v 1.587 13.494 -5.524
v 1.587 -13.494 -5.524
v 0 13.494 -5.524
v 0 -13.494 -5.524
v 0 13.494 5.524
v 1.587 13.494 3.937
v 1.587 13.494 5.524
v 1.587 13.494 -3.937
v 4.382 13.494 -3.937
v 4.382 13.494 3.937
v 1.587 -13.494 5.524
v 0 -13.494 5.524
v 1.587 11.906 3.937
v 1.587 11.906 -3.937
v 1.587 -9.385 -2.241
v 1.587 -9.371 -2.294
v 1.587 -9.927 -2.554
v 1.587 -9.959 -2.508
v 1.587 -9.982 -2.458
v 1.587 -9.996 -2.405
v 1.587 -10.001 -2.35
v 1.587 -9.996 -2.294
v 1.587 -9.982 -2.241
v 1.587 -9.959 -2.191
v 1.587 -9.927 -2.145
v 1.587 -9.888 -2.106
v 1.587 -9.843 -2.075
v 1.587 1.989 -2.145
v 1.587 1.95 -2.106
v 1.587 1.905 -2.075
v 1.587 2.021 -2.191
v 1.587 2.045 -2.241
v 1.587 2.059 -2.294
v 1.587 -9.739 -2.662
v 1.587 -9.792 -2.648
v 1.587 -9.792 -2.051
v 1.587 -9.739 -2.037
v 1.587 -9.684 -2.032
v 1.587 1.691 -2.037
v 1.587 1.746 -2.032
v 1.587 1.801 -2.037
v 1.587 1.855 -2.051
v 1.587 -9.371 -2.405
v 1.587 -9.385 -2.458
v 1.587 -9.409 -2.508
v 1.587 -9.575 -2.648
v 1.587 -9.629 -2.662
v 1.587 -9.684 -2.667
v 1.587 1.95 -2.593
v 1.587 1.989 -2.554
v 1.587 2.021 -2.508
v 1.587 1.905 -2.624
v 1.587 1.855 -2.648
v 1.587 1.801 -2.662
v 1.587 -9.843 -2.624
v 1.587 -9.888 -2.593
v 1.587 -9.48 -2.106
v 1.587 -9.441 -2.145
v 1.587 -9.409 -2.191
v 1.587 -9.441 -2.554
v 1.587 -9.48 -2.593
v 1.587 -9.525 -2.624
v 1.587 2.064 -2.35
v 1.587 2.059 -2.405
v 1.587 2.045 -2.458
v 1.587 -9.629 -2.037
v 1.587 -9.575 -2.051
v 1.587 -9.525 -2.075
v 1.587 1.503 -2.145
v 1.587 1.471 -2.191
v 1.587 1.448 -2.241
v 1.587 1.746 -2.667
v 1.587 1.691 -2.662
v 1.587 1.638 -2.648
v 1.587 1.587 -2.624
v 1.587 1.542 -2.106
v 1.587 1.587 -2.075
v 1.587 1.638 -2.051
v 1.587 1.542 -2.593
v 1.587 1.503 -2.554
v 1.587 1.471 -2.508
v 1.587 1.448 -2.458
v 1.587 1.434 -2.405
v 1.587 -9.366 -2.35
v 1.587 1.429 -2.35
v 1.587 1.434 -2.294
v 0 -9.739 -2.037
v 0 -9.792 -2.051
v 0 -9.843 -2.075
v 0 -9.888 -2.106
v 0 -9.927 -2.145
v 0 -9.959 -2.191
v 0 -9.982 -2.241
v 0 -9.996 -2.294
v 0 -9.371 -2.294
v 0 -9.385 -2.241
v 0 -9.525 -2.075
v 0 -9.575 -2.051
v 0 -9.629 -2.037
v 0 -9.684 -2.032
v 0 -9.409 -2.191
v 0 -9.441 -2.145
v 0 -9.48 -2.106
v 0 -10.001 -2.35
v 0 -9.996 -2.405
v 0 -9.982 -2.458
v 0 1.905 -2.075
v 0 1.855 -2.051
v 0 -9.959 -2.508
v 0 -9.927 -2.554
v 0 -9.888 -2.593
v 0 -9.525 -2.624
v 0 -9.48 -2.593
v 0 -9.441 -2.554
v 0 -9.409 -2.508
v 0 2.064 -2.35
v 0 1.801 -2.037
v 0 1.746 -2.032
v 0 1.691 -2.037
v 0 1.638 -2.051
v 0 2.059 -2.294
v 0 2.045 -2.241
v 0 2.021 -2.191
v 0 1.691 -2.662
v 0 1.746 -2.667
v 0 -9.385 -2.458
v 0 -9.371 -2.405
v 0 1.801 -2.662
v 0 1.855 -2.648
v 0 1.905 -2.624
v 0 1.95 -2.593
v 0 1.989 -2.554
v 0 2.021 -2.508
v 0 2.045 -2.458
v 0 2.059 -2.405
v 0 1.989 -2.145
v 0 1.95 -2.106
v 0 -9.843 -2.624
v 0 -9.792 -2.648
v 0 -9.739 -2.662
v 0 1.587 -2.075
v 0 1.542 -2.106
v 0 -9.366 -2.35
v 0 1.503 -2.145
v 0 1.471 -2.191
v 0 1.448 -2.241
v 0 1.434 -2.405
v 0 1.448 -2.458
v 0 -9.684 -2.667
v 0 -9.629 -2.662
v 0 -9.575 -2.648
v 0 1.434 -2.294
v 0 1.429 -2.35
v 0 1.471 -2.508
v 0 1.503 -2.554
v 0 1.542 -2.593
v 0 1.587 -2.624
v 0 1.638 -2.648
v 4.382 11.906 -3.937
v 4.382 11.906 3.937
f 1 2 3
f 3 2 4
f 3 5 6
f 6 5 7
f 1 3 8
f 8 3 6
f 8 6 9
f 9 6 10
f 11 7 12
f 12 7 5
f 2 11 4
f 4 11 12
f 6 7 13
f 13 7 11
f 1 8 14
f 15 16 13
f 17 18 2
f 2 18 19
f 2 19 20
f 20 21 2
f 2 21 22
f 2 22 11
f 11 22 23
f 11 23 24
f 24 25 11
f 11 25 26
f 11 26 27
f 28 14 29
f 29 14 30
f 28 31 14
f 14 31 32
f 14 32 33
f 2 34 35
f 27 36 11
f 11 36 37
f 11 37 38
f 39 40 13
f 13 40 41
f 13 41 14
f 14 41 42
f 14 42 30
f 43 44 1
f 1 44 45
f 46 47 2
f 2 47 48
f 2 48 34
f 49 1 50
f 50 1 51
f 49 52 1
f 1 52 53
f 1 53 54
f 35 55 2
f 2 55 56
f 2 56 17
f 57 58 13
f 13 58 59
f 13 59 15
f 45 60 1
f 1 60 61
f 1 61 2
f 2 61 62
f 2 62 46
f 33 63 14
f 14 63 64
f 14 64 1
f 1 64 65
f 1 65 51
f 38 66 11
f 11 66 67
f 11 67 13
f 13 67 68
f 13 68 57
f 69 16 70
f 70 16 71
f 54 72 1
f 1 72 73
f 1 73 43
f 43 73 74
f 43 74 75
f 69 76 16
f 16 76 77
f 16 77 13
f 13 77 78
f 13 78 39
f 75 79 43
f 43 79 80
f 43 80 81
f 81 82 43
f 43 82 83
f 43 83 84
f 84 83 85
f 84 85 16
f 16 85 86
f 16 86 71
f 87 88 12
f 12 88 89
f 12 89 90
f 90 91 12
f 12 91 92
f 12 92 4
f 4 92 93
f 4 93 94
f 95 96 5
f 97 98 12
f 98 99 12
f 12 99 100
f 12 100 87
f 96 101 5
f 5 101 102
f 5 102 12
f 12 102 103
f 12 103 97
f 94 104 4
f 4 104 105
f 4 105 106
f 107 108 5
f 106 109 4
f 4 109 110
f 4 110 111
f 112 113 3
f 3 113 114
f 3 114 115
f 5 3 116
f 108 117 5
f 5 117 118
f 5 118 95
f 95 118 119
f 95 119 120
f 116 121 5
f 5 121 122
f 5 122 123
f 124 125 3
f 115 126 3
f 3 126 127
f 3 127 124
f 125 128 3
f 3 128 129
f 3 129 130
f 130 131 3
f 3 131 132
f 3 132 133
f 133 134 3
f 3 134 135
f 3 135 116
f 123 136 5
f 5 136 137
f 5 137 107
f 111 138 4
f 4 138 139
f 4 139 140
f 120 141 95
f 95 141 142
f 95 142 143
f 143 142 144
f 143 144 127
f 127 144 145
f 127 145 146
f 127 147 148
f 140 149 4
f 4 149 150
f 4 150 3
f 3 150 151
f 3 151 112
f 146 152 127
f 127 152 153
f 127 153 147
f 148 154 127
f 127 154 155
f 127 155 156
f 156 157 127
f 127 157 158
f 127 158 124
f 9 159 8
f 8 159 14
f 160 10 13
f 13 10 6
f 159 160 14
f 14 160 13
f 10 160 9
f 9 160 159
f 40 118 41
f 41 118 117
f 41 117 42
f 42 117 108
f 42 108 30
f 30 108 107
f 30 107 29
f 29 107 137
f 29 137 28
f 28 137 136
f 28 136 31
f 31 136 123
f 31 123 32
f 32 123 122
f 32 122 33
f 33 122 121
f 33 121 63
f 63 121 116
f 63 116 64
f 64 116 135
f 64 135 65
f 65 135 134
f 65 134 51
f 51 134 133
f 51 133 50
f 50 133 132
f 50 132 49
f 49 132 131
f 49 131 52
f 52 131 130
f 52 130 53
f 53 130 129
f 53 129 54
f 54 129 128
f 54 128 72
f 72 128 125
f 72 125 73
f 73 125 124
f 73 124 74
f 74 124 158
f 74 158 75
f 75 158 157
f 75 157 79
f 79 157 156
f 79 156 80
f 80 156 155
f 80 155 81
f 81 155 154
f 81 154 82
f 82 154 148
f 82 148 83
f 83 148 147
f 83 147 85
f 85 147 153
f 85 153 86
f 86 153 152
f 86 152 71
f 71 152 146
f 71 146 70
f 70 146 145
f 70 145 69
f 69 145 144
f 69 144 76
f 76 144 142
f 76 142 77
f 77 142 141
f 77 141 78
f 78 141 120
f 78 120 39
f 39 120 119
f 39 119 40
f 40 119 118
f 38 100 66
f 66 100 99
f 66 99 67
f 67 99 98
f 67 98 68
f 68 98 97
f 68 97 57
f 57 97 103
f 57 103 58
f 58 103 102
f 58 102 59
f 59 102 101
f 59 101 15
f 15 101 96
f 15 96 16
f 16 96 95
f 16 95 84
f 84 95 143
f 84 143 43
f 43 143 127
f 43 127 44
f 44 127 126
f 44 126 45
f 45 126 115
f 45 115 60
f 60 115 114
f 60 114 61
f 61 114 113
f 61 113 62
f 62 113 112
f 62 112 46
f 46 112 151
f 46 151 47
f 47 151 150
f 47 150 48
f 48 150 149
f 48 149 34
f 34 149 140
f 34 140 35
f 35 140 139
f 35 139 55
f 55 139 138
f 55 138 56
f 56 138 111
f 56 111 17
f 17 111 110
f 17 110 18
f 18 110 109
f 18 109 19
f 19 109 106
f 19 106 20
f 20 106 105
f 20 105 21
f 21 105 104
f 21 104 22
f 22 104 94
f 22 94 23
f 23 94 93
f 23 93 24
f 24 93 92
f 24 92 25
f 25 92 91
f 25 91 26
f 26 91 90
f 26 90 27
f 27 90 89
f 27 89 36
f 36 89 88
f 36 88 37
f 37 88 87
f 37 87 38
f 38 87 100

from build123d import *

# Parameters (mm, degrees)
SKETCH1_W           = 11.049
SKETCH1_H           = 26.9875
BOSS_EXTRUDE1_DEPTH = 1.5875
SKETCH2_W           = 7.874
SKETCH2_H           = 1.5875
BOSS_EXTRUDE2_DEPTH = 2.794
CUT_EXTRUDE1_REACH  = 6.381
SKETCH3_R           = 0.3175


with BuildPart() as part:
    # Sketch1 → Boss-Extrude1 (new body)
    with BuildSketch(Plane(origin=(0, 0, 0), x_dir=(0, 0, -1), z_dir=(1, 0, 0))):
        Rectangle(SKETCH1_W, SKETCH1_H)
    extrude(amount=BOSS_EXTRUDE1_DEPTH)

    # Sketch2 → Boss-Extrude2 (add)
    with BuildSketch(Plane(origin=(1.5875, 0, 0), x_dir=(0, 0, -1), z_dir=(1, 0, 0))):
        with Locations((0, 12.7)):
            Rectangle(SKETCH2_W, SKETCH2_H)
    extrude(amount=BOSS_EXTRUDE2_DEPTH)

    # Sketch3 → Cut-Extrude1 (cut, up to next)
    with BuildSketch(Plane.ZY, mode=Mode.PRIVATE) as cut_extrude1_sk1:
        with Locations((-2.3495, 1.74625)):
            Circle(SKETCH3_R)
    cut_extrude1_tool1 = extrude(cut_extrude1_sk1.sketch, amount=-CUT_EXTRUDE1_REACH, mode=Mode.PRIVATE) & part.part
    add(cut_extrude1_tool1.solids().sort_by_distance((0, 1.74625, -2.3495))[0], mode=Mode.SUBTRACT)
    # Sketch3 → Cut-Extrude1 (cut, up to next)
    with BuildSketch(Plane.ZY, mode=Mode.PRIVATE) as cut_extrude1_sk2:
        with Locations((-2.3495, -9.68375)):
            Circle(SKETCH3_R)
    cut_extrude1_tool2 = extrude(cut_extrude1_sk2.sketch, amount=-CUT_EXTRUDE1_REACH, mode=Mode.PRIVATE) & part.part
    add(cut_extrude1_tool2.solids().sort_by_distance((0, -9.68375, -2.3495))[0], mode=Mode.SUBTRACT)


solid = part.part
